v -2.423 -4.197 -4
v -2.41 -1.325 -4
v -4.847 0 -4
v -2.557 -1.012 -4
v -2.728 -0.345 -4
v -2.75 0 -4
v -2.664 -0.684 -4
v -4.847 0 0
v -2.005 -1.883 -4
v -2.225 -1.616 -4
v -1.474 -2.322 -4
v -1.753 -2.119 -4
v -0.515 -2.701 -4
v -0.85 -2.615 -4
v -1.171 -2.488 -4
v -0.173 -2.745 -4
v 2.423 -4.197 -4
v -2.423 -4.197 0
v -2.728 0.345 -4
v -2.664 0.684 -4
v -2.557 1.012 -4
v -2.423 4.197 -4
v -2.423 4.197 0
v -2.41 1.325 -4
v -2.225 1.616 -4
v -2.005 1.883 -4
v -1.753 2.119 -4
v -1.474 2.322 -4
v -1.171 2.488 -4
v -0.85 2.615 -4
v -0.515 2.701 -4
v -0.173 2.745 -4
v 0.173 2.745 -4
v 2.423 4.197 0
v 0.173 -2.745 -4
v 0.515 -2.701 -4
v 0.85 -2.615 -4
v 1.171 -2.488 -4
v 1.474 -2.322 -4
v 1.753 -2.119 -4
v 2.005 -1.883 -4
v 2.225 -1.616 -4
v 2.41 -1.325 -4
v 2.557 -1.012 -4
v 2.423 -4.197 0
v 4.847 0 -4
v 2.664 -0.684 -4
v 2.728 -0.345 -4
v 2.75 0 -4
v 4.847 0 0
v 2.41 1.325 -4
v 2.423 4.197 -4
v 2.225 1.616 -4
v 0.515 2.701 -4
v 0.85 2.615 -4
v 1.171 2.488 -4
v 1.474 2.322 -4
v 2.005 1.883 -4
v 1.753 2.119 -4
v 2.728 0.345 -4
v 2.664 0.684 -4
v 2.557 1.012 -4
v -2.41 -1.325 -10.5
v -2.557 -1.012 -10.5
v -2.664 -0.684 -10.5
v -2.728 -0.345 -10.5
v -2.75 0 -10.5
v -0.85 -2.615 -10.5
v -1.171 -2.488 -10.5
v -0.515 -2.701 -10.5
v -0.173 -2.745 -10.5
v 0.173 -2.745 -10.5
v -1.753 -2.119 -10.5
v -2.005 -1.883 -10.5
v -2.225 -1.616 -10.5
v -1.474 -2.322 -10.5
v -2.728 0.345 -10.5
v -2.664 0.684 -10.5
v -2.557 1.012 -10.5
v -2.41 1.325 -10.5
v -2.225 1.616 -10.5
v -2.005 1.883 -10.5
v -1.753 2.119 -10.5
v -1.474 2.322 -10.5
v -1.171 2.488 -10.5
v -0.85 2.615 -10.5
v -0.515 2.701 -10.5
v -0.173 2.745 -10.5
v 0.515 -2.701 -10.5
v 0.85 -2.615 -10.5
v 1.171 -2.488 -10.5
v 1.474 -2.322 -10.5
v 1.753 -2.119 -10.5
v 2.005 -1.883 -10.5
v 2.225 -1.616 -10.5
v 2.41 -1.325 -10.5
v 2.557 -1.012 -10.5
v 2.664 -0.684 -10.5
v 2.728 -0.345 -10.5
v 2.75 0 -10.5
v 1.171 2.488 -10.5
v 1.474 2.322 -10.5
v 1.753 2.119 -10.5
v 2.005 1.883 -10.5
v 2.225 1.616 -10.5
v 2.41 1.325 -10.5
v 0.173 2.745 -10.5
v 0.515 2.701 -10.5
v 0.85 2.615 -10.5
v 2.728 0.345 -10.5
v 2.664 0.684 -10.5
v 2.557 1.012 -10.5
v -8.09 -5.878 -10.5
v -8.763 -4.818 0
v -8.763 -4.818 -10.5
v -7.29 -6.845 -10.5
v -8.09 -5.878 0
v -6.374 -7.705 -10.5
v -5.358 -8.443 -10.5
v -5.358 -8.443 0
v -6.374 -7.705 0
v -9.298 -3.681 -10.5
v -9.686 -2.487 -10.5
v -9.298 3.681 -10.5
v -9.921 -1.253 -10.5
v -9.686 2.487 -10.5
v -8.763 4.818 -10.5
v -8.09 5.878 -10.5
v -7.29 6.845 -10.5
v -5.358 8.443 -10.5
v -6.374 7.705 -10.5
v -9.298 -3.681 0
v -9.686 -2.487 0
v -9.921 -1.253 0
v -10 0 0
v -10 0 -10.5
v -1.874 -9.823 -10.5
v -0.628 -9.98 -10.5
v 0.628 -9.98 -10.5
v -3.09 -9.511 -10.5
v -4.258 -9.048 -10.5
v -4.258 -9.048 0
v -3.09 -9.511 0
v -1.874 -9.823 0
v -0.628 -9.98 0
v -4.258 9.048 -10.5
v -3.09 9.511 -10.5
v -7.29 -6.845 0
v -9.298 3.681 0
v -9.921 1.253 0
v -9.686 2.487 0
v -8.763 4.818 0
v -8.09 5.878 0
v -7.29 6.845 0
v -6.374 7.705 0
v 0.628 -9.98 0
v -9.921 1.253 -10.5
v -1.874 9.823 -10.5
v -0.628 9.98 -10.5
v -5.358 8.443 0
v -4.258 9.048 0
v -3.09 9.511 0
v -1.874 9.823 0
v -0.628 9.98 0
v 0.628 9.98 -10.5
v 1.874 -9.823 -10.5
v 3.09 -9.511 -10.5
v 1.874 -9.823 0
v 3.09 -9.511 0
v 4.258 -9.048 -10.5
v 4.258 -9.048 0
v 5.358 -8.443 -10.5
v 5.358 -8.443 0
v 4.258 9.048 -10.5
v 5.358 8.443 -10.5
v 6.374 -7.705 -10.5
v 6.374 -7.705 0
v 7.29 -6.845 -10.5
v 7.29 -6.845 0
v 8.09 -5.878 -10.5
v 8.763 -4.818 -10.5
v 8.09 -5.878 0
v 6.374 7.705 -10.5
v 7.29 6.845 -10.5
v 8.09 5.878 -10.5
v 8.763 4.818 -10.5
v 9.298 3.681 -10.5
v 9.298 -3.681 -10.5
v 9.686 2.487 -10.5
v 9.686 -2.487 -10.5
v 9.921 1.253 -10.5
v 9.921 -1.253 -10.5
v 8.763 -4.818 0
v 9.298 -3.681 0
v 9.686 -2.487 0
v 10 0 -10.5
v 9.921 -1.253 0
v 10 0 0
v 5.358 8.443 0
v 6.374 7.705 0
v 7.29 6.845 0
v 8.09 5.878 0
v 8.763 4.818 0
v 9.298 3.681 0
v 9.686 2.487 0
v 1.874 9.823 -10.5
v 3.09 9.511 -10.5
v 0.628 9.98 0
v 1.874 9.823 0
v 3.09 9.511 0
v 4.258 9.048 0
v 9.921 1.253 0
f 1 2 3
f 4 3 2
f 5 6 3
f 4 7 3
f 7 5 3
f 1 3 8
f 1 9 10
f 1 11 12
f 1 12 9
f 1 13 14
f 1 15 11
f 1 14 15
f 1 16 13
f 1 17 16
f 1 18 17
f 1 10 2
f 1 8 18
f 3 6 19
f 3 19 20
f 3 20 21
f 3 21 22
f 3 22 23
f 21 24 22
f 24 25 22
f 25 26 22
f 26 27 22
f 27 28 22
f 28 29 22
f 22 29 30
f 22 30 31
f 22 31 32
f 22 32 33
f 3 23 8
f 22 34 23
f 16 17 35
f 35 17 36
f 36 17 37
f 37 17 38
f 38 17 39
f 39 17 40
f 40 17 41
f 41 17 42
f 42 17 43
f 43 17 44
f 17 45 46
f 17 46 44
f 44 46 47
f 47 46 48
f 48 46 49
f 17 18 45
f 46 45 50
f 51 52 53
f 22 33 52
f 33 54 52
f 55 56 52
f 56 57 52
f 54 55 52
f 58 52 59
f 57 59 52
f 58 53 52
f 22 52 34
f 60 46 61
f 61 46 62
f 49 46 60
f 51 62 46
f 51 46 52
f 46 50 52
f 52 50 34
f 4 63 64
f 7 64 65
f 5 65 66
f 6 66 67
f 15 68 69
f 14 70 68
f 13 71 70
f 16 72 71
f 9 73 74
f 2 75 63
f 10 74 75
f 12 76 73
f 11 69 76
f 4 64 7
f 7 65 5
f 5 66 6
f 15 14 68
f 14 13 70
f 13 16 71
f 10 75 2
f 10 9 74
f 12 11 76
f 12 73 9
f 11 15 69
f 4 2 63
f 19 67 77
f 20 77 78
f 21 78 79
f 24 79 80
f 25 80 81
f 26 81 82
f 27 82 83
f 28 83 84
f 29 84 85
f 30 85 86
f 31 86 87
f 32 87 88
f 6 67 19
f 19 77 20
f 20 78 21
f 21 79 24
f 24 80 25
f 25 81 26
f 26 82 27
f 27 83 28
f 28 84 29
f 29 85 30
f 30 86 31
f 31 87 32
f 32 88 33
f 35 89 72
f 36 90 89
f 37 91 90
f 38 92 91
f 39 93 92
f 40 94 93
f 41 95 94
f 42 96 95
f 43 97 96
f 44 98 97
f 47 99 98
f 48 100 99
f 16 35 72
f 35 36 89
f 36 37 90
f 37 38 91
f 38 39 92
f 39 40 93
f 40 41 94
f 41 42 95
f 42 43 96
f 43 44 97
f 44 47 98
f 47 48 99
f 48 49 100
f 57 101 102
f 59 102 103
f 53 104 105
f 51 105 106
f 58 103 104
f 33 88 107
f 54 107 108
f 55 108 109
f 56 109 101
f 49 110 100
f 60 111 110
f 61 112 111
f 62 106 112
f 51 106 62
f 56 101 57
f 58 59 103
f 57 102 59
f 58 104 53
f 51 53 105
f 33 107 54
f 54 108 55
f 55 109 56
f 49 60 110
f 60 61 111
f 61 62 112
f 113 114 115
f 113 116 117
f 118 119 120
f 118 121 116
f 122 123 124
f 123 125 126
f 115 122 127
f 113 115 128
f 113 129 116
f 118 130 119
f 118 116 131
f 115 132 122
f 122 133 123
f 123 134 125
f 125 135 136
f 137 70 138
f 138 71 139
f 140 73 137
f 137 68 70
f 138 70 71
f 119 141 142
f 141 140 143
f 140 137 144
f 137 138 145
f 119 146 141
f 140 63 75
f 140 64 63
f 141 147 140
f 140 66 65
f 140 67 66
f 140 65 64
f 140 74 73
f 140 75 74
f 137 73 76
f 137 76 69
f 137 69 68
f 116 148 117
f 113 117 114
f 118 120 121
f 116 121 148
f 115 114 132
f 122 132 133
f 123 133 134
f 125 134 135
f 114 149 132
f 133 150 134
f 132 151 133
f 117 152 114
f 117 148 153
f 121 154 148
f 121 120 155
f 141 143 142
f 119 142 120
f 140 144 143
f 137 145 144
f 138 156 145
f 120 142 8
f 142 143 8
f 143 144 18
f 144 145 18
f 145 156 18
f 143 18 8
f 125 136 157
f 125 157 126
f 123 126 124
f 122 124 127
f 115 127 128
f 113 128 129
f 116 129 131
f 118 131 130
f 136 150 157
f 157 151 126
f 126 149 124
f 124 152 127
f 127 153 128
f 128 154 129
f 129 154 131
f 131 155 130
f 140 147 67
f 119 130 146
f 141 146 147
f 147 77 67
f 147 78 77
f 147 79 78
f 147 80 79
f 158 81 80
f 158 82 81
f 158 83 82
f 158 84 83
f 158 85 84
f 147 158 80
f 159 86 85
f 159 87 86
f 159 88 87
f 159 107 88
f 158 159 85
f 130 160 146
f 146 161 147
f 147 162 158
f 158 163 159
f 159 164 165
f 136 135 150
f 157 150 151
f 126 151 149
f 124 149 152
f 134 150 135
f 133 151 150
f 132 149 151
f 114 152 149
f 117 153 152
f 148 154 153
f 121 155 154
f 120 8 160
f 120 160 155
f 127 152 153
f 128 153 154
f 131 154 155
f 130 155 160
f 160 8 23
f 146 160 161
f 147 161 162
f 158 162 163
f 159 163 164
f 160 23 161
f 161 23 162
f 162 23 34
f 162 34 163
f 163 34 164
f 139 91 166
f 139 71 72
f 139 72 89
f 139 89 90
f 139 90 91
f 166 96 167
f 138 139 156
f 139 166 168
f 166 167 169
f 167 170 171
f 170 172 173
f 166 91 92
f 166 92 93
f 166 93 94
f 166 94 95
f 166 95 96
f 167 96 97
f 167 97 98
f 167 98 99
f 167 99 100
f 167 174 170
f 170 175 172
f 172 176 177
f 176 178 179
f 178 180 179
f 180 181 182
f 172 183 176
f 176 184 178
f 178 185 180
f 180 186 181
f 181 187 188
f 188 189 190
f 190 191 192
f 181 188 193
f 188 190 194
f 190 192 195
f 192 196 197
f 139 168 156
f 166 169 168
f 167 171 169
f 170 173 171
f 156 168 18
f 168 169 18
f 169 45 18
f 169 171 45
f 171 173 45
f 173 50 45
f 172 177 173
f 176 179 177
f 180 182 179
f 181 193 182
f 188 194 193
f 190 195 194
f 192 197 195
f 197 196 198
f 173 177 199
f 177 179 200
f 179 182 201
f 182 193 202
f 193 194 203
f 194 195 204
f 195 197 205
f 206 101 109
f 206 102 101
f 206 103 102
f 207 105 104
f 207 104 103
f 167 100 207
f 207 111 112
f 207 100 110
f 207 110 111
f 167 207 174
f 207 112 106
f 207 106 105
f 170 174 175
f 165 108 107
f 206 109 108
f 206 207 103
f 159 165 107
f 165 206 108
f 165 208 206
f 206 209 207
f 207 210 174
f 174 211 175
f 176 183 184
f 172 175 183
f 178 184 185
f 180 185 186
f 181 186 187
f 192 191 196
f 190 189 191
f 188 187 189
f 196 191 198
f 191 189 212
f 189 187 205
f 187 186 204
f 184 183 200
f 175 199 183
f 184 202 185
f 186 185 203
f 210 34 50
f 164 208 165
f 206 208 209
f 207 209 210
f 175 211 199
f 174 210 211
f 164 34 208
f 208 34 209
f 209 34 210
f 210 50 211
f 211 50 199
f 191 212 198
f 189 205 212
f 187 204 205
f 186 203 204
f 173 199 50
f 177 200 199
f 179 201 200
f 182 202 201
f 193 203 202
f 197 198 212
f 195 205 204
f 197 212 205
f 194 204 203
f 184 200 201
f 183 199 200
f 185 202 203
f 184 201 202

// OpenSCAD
$fn = 50;

difference() {
	union() {
		translate(v = [0, 0, -10.5]) {
			cylinder(h = 10.5, r = 10.0);
		}
	}
	union() {
		translate(v = [0, 0, 0]) {
			rotate(a = [0, 0, 0]) {
				difference() {
					union() {
						translate(v = [0, 0, -4]) {
							linear_extrude(height = 4) {
								polygon(points = [[4.8468, 0.0], [2.4234000000000004, 4.197451927062417], [-2.423399999999999, 4.197451927062417], [-4.8468, 5.935618106107392e-16], [-2.423400000000002, -4.197451927062416], [2.423399999999997, -4.197451927062419]]);
							}
						}
					}
					union();
				}
			}
		}
		#translate(v = [0, 0, -100.0]) {
			cylinder(h = 200, r = 2.75);
		}
	}
}
